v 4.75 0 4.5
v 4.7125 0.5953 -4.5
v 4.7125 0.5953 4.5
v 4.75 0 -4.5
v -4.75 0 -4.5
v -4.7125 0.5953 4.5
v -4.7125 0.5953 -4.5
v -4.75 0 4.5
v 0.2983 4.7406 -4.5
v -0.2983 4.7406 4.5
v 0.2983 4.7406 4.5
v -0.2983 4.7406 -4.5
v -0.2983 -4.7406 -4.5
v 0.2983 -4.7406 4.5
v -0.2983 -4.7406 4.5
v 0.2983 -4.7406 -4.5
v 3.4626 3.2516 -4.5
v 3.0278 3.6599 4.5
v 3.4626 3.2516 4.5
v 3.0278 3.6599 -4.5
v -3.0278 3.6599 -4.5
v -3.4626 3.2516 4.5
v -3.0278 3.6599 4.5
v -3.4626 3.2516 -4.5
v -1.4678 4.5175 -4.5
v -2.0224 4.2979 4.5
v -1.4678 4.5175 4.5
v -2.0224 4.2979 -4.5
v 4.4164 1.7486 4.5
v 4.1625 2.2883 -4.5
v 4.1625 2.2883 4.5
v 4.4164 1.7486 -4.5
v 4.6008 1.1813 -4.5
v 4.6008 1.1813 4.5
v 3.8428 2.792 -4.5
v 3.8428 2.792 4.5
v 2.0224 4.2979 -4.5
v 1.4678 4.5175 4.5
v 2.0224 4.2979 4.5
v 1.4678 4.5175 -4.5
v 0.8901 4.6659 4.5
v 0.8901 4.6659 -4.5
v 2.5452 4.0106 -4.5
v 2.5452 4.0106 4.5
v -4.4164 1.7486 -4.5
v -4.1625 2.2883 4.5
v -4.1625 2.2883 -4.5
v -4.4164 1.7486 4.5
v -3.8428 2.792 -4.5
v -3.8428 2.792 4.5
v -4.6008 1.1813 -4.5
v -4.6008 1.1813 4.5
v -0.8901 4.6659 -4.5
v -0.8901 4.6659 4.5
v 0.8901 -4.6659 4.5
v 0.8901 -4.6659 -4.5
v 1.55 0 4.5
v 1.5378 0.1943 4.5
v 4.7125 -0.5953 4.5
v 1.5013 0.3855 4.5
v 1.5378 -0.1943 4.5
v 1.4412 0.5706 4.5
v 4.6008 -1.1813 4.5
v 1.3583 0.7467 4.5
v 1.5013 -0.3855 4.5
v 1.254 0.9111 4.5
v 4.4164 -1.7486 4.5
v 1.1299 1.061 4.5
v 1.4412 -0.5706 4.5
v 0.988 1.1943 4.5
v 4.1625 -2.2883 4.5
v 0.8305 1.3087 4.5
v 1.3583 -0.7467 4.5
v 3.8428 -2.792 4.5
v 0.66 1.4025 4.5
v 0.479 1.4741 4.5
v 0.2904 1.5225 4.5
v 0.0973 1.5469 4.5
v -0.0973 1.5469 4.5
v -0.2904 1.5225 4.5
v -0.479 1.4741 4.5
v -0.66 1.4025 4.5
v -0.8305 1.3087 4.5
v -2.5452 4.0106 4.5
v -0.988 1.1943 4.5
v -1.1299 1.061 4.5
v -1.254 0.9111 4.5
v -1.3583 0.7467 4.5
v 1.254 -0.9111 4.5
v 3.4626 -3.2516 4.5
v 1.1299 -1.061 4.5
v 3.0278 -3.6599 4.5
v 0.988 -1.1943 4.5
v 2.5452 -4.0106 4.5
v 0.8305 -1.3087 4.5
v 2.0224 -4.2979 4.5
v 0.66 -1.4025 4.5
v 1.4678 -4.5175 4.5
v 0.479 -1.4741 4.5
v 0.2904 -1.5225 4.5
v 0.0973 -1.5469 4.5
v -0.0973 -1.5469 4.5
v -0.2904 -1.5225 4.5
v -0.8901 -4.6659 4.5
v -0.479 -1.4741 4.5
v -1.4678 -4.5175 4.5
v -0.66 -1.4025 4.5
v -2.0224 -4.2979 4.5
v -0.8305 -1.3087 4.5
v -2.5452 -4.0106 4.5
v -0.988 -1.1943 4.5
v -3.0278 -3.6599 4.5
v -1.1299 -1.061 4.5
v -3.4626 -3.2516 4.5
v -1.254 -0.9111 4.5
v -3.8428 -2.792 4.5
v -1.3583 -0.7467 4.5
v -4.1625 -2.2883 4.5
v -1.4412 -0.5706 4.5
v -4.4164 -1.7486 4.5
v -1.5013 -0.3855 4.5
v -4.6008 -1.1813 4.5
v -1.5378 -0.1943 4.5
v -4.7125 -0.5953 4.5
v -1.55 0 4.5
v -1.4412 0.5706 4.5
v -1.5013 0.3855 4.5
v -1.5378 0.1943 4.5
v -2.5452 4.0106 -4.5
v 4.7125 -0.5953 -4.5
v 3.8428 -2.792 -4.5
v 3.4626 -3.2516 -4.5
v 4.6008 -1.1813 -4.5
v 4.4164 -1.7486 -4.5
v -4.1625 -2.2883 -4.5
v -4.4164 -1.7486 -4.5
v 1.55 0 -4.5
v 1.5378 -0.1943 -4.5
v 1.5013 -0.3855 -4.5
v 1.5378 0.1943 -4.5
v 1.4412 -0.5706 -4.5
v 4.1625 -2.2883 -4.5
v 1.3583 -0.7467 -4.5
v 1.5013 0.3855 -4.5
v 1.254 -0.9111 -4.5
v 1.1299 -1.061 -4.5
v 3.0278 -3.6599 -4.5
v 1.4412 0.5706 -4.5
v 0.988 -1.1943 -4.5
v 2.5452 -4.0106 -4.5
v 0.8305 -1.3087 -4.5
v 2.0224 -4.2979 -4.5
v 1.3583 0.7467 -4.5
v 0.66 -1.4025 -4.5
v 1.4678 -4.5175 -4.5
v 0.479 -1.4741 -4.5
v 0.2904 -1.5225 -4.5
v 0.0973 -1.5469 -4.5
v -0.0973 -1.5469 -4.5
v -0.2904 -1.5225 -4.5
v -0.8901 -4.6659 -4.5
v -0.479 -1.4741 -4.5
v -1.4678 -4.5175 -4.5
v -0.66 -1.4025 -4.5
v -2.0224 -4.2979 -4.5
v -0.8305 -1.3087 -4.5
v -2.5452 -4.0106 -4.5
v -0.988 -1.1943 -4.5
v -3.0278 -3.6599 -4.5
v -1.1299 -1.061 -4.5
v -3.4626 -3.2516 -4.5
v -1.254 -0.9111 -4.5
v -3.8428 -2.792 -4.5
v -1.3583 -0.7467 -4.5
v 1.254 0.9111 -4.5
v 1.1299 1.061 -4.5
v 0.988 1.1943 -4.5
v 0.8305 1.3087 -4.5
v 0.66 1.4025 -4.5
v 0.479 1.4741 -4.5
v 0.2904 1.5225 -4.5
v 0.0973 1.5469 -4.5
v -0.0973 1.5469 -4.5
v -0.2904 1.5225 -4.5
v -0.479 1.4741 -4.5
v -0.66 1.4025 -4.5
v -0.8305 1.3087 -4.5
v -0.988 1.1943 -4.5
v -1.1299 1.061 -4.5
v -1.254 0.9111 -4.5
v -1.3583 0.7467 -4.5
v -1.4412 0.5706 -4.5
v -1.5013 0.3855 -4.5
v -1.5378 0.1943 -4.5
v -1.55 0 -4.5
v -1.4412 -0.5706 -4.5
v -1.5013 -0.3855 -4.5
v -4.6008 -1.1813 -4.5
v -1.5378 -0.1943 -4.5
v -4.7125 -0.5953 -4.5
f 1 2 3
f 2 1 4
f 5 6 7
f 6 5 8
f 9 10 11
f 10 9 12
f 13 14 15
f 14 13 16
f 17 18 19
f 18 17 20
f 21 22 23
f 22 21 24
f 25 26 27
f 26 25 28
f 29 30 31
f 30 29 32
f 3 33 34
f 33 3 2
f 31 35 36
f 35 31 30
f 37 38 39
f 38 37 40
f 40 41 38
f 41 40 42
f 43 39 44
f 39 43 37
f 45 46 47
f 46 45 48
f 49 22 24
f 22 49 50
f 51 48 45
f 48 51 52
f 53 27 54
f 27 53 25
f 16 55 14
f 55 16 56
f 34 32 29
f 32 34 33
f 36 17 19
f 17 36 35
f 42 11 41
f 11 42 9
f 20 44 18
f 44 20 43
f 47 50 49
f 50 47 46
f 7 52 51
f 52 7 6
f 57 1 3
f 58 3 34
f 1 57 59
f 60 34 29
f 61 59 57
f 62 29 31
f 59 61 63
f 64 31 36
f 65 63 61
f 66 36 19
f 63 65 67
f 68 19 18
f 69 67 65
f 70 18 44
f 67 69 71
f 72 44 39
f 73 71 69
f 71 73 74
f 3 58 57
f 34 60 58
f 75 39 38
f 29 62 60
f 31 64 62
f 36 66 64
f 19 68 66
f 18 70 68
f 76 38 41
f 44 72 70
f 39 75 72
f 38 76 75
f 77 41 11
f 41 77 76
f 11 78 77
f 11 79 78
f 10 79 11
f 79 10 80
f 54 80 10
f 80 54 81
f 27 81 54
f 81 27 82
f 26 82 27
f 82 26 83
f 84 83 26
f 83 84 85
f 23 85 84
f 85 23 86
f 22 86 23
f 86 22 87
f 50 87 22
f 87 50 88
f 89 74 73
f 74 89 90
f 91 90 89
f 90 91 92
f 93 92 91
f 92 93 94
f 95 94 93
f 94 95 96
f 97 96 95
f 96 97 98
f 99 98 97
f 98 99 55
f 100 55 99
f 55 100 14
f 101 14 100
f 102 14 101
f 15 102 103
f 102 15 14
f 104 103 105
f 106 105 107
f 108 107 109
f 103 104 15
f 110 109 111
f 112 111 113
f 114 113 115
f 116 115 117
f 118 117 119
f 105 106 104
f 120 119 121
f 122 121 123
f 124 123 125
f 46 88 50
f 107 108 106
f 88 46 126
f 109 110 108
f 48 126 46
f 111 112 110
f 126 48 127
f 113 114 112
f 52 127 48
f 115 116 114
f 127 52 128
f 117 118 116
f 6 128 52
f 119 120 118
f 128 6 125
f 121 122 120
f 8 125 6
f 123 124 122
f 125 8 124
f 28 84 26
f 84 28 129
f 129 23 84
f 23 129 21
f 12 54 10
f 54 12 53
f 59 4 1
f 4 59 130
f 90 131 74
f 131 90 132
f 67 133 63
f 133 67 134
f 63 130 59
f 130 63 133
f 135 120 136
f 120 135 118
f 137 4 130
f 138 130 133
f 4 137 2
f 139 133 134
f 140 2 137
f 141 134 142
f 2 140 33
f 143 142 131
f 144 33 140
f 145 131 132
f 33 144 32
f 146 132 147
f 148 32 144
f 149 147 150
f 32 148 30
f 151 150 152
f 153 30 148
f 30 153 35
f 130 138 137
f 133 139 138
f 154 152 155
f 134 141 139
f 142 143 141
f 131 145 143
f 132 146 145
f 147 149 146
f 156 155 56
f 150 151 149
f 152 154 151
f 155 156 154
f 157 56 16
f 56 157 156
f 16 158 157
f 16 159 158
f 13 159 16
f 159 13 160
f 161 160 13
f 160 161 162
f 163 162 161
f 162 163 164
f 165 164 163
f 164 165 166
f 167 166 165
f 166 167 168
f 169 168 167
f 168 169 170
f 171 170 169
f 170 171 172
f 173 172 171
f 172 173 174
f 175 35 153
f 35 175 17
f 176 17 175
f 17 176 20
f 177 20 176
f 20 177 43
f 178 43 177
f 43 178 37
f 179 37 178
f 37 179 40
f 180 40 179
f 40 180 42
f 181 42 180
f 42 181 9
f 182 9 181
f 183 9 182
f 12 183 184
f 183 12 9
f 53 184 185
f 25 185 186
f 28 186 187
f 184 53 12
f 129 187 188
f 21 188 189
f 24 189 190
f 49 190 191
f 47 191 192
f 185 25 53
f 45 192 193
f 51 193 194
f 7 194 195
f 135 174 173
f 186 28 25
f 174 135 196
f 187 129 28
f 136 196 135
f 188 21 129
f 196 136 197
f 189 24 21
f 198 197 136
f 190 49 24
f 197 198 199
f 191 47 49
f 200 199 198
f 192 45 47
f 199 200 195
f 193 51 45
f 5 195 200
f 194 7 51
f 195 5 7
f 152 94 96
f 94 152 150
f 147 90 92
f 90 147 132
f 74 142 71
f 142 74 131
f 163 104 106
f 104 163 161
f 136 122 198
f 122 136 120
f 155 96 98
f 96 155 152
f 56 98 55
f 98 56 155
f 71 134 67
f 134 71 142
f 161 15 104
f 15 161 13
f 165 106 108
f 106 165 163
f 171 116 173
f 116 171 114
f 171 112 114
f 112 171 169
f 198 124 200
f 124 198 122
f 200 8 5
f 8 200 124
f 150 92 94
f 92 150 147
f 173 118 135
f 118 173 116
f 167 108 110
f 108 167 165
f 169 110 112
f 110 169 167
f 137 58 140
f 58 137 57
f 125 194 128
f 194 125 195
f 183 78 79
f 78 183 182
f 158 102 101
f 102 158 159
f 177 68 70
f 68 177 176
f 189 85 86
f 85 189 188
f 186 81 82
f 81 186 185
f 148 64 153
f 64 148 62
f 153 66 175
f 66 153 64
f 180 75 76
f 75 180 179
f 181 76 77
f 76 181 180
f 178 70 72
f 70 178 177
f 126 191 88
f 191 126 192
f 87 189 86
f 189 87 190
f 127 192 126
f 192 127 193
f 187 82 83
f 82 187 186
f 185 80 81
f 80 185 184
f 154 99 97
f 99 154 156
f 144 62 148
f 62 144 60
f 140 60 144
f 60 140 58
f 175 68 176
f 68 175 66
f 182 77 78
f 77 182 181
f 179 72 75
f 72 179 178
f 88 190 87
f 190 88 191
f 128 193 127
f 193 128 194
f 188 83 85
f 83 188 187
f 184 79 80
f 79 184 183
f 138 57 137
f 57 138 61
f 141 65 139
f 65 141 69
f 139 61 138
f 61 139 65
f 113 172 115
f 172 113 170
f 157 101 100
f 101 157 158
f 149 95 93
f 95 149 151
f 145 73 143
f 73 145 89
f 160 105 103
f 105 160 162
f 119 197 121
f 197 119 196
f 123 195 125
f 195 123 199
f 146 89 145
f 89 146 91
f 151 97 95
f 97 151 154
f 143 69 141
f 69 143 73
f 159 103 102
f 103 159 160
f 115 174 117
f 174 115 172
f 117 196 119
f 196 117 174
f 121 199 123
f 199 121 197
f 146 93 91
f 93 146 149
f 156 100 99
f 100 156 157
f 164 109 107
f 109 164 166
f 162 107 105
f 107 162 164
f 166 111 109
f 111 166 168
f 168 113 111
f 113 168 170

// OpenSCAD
$fn = 50;


difference() {
	union() {
		translate(v = [0, 0, -4.5000000000]) {
			cylinder(h = 9, r = 4.7500000000);
		}
	}
	union() {
		translate(v = [0, 0, -100.0000000000]) {
			cylinder(h = 200, r = 1.5500000000);
		}
	}
}
